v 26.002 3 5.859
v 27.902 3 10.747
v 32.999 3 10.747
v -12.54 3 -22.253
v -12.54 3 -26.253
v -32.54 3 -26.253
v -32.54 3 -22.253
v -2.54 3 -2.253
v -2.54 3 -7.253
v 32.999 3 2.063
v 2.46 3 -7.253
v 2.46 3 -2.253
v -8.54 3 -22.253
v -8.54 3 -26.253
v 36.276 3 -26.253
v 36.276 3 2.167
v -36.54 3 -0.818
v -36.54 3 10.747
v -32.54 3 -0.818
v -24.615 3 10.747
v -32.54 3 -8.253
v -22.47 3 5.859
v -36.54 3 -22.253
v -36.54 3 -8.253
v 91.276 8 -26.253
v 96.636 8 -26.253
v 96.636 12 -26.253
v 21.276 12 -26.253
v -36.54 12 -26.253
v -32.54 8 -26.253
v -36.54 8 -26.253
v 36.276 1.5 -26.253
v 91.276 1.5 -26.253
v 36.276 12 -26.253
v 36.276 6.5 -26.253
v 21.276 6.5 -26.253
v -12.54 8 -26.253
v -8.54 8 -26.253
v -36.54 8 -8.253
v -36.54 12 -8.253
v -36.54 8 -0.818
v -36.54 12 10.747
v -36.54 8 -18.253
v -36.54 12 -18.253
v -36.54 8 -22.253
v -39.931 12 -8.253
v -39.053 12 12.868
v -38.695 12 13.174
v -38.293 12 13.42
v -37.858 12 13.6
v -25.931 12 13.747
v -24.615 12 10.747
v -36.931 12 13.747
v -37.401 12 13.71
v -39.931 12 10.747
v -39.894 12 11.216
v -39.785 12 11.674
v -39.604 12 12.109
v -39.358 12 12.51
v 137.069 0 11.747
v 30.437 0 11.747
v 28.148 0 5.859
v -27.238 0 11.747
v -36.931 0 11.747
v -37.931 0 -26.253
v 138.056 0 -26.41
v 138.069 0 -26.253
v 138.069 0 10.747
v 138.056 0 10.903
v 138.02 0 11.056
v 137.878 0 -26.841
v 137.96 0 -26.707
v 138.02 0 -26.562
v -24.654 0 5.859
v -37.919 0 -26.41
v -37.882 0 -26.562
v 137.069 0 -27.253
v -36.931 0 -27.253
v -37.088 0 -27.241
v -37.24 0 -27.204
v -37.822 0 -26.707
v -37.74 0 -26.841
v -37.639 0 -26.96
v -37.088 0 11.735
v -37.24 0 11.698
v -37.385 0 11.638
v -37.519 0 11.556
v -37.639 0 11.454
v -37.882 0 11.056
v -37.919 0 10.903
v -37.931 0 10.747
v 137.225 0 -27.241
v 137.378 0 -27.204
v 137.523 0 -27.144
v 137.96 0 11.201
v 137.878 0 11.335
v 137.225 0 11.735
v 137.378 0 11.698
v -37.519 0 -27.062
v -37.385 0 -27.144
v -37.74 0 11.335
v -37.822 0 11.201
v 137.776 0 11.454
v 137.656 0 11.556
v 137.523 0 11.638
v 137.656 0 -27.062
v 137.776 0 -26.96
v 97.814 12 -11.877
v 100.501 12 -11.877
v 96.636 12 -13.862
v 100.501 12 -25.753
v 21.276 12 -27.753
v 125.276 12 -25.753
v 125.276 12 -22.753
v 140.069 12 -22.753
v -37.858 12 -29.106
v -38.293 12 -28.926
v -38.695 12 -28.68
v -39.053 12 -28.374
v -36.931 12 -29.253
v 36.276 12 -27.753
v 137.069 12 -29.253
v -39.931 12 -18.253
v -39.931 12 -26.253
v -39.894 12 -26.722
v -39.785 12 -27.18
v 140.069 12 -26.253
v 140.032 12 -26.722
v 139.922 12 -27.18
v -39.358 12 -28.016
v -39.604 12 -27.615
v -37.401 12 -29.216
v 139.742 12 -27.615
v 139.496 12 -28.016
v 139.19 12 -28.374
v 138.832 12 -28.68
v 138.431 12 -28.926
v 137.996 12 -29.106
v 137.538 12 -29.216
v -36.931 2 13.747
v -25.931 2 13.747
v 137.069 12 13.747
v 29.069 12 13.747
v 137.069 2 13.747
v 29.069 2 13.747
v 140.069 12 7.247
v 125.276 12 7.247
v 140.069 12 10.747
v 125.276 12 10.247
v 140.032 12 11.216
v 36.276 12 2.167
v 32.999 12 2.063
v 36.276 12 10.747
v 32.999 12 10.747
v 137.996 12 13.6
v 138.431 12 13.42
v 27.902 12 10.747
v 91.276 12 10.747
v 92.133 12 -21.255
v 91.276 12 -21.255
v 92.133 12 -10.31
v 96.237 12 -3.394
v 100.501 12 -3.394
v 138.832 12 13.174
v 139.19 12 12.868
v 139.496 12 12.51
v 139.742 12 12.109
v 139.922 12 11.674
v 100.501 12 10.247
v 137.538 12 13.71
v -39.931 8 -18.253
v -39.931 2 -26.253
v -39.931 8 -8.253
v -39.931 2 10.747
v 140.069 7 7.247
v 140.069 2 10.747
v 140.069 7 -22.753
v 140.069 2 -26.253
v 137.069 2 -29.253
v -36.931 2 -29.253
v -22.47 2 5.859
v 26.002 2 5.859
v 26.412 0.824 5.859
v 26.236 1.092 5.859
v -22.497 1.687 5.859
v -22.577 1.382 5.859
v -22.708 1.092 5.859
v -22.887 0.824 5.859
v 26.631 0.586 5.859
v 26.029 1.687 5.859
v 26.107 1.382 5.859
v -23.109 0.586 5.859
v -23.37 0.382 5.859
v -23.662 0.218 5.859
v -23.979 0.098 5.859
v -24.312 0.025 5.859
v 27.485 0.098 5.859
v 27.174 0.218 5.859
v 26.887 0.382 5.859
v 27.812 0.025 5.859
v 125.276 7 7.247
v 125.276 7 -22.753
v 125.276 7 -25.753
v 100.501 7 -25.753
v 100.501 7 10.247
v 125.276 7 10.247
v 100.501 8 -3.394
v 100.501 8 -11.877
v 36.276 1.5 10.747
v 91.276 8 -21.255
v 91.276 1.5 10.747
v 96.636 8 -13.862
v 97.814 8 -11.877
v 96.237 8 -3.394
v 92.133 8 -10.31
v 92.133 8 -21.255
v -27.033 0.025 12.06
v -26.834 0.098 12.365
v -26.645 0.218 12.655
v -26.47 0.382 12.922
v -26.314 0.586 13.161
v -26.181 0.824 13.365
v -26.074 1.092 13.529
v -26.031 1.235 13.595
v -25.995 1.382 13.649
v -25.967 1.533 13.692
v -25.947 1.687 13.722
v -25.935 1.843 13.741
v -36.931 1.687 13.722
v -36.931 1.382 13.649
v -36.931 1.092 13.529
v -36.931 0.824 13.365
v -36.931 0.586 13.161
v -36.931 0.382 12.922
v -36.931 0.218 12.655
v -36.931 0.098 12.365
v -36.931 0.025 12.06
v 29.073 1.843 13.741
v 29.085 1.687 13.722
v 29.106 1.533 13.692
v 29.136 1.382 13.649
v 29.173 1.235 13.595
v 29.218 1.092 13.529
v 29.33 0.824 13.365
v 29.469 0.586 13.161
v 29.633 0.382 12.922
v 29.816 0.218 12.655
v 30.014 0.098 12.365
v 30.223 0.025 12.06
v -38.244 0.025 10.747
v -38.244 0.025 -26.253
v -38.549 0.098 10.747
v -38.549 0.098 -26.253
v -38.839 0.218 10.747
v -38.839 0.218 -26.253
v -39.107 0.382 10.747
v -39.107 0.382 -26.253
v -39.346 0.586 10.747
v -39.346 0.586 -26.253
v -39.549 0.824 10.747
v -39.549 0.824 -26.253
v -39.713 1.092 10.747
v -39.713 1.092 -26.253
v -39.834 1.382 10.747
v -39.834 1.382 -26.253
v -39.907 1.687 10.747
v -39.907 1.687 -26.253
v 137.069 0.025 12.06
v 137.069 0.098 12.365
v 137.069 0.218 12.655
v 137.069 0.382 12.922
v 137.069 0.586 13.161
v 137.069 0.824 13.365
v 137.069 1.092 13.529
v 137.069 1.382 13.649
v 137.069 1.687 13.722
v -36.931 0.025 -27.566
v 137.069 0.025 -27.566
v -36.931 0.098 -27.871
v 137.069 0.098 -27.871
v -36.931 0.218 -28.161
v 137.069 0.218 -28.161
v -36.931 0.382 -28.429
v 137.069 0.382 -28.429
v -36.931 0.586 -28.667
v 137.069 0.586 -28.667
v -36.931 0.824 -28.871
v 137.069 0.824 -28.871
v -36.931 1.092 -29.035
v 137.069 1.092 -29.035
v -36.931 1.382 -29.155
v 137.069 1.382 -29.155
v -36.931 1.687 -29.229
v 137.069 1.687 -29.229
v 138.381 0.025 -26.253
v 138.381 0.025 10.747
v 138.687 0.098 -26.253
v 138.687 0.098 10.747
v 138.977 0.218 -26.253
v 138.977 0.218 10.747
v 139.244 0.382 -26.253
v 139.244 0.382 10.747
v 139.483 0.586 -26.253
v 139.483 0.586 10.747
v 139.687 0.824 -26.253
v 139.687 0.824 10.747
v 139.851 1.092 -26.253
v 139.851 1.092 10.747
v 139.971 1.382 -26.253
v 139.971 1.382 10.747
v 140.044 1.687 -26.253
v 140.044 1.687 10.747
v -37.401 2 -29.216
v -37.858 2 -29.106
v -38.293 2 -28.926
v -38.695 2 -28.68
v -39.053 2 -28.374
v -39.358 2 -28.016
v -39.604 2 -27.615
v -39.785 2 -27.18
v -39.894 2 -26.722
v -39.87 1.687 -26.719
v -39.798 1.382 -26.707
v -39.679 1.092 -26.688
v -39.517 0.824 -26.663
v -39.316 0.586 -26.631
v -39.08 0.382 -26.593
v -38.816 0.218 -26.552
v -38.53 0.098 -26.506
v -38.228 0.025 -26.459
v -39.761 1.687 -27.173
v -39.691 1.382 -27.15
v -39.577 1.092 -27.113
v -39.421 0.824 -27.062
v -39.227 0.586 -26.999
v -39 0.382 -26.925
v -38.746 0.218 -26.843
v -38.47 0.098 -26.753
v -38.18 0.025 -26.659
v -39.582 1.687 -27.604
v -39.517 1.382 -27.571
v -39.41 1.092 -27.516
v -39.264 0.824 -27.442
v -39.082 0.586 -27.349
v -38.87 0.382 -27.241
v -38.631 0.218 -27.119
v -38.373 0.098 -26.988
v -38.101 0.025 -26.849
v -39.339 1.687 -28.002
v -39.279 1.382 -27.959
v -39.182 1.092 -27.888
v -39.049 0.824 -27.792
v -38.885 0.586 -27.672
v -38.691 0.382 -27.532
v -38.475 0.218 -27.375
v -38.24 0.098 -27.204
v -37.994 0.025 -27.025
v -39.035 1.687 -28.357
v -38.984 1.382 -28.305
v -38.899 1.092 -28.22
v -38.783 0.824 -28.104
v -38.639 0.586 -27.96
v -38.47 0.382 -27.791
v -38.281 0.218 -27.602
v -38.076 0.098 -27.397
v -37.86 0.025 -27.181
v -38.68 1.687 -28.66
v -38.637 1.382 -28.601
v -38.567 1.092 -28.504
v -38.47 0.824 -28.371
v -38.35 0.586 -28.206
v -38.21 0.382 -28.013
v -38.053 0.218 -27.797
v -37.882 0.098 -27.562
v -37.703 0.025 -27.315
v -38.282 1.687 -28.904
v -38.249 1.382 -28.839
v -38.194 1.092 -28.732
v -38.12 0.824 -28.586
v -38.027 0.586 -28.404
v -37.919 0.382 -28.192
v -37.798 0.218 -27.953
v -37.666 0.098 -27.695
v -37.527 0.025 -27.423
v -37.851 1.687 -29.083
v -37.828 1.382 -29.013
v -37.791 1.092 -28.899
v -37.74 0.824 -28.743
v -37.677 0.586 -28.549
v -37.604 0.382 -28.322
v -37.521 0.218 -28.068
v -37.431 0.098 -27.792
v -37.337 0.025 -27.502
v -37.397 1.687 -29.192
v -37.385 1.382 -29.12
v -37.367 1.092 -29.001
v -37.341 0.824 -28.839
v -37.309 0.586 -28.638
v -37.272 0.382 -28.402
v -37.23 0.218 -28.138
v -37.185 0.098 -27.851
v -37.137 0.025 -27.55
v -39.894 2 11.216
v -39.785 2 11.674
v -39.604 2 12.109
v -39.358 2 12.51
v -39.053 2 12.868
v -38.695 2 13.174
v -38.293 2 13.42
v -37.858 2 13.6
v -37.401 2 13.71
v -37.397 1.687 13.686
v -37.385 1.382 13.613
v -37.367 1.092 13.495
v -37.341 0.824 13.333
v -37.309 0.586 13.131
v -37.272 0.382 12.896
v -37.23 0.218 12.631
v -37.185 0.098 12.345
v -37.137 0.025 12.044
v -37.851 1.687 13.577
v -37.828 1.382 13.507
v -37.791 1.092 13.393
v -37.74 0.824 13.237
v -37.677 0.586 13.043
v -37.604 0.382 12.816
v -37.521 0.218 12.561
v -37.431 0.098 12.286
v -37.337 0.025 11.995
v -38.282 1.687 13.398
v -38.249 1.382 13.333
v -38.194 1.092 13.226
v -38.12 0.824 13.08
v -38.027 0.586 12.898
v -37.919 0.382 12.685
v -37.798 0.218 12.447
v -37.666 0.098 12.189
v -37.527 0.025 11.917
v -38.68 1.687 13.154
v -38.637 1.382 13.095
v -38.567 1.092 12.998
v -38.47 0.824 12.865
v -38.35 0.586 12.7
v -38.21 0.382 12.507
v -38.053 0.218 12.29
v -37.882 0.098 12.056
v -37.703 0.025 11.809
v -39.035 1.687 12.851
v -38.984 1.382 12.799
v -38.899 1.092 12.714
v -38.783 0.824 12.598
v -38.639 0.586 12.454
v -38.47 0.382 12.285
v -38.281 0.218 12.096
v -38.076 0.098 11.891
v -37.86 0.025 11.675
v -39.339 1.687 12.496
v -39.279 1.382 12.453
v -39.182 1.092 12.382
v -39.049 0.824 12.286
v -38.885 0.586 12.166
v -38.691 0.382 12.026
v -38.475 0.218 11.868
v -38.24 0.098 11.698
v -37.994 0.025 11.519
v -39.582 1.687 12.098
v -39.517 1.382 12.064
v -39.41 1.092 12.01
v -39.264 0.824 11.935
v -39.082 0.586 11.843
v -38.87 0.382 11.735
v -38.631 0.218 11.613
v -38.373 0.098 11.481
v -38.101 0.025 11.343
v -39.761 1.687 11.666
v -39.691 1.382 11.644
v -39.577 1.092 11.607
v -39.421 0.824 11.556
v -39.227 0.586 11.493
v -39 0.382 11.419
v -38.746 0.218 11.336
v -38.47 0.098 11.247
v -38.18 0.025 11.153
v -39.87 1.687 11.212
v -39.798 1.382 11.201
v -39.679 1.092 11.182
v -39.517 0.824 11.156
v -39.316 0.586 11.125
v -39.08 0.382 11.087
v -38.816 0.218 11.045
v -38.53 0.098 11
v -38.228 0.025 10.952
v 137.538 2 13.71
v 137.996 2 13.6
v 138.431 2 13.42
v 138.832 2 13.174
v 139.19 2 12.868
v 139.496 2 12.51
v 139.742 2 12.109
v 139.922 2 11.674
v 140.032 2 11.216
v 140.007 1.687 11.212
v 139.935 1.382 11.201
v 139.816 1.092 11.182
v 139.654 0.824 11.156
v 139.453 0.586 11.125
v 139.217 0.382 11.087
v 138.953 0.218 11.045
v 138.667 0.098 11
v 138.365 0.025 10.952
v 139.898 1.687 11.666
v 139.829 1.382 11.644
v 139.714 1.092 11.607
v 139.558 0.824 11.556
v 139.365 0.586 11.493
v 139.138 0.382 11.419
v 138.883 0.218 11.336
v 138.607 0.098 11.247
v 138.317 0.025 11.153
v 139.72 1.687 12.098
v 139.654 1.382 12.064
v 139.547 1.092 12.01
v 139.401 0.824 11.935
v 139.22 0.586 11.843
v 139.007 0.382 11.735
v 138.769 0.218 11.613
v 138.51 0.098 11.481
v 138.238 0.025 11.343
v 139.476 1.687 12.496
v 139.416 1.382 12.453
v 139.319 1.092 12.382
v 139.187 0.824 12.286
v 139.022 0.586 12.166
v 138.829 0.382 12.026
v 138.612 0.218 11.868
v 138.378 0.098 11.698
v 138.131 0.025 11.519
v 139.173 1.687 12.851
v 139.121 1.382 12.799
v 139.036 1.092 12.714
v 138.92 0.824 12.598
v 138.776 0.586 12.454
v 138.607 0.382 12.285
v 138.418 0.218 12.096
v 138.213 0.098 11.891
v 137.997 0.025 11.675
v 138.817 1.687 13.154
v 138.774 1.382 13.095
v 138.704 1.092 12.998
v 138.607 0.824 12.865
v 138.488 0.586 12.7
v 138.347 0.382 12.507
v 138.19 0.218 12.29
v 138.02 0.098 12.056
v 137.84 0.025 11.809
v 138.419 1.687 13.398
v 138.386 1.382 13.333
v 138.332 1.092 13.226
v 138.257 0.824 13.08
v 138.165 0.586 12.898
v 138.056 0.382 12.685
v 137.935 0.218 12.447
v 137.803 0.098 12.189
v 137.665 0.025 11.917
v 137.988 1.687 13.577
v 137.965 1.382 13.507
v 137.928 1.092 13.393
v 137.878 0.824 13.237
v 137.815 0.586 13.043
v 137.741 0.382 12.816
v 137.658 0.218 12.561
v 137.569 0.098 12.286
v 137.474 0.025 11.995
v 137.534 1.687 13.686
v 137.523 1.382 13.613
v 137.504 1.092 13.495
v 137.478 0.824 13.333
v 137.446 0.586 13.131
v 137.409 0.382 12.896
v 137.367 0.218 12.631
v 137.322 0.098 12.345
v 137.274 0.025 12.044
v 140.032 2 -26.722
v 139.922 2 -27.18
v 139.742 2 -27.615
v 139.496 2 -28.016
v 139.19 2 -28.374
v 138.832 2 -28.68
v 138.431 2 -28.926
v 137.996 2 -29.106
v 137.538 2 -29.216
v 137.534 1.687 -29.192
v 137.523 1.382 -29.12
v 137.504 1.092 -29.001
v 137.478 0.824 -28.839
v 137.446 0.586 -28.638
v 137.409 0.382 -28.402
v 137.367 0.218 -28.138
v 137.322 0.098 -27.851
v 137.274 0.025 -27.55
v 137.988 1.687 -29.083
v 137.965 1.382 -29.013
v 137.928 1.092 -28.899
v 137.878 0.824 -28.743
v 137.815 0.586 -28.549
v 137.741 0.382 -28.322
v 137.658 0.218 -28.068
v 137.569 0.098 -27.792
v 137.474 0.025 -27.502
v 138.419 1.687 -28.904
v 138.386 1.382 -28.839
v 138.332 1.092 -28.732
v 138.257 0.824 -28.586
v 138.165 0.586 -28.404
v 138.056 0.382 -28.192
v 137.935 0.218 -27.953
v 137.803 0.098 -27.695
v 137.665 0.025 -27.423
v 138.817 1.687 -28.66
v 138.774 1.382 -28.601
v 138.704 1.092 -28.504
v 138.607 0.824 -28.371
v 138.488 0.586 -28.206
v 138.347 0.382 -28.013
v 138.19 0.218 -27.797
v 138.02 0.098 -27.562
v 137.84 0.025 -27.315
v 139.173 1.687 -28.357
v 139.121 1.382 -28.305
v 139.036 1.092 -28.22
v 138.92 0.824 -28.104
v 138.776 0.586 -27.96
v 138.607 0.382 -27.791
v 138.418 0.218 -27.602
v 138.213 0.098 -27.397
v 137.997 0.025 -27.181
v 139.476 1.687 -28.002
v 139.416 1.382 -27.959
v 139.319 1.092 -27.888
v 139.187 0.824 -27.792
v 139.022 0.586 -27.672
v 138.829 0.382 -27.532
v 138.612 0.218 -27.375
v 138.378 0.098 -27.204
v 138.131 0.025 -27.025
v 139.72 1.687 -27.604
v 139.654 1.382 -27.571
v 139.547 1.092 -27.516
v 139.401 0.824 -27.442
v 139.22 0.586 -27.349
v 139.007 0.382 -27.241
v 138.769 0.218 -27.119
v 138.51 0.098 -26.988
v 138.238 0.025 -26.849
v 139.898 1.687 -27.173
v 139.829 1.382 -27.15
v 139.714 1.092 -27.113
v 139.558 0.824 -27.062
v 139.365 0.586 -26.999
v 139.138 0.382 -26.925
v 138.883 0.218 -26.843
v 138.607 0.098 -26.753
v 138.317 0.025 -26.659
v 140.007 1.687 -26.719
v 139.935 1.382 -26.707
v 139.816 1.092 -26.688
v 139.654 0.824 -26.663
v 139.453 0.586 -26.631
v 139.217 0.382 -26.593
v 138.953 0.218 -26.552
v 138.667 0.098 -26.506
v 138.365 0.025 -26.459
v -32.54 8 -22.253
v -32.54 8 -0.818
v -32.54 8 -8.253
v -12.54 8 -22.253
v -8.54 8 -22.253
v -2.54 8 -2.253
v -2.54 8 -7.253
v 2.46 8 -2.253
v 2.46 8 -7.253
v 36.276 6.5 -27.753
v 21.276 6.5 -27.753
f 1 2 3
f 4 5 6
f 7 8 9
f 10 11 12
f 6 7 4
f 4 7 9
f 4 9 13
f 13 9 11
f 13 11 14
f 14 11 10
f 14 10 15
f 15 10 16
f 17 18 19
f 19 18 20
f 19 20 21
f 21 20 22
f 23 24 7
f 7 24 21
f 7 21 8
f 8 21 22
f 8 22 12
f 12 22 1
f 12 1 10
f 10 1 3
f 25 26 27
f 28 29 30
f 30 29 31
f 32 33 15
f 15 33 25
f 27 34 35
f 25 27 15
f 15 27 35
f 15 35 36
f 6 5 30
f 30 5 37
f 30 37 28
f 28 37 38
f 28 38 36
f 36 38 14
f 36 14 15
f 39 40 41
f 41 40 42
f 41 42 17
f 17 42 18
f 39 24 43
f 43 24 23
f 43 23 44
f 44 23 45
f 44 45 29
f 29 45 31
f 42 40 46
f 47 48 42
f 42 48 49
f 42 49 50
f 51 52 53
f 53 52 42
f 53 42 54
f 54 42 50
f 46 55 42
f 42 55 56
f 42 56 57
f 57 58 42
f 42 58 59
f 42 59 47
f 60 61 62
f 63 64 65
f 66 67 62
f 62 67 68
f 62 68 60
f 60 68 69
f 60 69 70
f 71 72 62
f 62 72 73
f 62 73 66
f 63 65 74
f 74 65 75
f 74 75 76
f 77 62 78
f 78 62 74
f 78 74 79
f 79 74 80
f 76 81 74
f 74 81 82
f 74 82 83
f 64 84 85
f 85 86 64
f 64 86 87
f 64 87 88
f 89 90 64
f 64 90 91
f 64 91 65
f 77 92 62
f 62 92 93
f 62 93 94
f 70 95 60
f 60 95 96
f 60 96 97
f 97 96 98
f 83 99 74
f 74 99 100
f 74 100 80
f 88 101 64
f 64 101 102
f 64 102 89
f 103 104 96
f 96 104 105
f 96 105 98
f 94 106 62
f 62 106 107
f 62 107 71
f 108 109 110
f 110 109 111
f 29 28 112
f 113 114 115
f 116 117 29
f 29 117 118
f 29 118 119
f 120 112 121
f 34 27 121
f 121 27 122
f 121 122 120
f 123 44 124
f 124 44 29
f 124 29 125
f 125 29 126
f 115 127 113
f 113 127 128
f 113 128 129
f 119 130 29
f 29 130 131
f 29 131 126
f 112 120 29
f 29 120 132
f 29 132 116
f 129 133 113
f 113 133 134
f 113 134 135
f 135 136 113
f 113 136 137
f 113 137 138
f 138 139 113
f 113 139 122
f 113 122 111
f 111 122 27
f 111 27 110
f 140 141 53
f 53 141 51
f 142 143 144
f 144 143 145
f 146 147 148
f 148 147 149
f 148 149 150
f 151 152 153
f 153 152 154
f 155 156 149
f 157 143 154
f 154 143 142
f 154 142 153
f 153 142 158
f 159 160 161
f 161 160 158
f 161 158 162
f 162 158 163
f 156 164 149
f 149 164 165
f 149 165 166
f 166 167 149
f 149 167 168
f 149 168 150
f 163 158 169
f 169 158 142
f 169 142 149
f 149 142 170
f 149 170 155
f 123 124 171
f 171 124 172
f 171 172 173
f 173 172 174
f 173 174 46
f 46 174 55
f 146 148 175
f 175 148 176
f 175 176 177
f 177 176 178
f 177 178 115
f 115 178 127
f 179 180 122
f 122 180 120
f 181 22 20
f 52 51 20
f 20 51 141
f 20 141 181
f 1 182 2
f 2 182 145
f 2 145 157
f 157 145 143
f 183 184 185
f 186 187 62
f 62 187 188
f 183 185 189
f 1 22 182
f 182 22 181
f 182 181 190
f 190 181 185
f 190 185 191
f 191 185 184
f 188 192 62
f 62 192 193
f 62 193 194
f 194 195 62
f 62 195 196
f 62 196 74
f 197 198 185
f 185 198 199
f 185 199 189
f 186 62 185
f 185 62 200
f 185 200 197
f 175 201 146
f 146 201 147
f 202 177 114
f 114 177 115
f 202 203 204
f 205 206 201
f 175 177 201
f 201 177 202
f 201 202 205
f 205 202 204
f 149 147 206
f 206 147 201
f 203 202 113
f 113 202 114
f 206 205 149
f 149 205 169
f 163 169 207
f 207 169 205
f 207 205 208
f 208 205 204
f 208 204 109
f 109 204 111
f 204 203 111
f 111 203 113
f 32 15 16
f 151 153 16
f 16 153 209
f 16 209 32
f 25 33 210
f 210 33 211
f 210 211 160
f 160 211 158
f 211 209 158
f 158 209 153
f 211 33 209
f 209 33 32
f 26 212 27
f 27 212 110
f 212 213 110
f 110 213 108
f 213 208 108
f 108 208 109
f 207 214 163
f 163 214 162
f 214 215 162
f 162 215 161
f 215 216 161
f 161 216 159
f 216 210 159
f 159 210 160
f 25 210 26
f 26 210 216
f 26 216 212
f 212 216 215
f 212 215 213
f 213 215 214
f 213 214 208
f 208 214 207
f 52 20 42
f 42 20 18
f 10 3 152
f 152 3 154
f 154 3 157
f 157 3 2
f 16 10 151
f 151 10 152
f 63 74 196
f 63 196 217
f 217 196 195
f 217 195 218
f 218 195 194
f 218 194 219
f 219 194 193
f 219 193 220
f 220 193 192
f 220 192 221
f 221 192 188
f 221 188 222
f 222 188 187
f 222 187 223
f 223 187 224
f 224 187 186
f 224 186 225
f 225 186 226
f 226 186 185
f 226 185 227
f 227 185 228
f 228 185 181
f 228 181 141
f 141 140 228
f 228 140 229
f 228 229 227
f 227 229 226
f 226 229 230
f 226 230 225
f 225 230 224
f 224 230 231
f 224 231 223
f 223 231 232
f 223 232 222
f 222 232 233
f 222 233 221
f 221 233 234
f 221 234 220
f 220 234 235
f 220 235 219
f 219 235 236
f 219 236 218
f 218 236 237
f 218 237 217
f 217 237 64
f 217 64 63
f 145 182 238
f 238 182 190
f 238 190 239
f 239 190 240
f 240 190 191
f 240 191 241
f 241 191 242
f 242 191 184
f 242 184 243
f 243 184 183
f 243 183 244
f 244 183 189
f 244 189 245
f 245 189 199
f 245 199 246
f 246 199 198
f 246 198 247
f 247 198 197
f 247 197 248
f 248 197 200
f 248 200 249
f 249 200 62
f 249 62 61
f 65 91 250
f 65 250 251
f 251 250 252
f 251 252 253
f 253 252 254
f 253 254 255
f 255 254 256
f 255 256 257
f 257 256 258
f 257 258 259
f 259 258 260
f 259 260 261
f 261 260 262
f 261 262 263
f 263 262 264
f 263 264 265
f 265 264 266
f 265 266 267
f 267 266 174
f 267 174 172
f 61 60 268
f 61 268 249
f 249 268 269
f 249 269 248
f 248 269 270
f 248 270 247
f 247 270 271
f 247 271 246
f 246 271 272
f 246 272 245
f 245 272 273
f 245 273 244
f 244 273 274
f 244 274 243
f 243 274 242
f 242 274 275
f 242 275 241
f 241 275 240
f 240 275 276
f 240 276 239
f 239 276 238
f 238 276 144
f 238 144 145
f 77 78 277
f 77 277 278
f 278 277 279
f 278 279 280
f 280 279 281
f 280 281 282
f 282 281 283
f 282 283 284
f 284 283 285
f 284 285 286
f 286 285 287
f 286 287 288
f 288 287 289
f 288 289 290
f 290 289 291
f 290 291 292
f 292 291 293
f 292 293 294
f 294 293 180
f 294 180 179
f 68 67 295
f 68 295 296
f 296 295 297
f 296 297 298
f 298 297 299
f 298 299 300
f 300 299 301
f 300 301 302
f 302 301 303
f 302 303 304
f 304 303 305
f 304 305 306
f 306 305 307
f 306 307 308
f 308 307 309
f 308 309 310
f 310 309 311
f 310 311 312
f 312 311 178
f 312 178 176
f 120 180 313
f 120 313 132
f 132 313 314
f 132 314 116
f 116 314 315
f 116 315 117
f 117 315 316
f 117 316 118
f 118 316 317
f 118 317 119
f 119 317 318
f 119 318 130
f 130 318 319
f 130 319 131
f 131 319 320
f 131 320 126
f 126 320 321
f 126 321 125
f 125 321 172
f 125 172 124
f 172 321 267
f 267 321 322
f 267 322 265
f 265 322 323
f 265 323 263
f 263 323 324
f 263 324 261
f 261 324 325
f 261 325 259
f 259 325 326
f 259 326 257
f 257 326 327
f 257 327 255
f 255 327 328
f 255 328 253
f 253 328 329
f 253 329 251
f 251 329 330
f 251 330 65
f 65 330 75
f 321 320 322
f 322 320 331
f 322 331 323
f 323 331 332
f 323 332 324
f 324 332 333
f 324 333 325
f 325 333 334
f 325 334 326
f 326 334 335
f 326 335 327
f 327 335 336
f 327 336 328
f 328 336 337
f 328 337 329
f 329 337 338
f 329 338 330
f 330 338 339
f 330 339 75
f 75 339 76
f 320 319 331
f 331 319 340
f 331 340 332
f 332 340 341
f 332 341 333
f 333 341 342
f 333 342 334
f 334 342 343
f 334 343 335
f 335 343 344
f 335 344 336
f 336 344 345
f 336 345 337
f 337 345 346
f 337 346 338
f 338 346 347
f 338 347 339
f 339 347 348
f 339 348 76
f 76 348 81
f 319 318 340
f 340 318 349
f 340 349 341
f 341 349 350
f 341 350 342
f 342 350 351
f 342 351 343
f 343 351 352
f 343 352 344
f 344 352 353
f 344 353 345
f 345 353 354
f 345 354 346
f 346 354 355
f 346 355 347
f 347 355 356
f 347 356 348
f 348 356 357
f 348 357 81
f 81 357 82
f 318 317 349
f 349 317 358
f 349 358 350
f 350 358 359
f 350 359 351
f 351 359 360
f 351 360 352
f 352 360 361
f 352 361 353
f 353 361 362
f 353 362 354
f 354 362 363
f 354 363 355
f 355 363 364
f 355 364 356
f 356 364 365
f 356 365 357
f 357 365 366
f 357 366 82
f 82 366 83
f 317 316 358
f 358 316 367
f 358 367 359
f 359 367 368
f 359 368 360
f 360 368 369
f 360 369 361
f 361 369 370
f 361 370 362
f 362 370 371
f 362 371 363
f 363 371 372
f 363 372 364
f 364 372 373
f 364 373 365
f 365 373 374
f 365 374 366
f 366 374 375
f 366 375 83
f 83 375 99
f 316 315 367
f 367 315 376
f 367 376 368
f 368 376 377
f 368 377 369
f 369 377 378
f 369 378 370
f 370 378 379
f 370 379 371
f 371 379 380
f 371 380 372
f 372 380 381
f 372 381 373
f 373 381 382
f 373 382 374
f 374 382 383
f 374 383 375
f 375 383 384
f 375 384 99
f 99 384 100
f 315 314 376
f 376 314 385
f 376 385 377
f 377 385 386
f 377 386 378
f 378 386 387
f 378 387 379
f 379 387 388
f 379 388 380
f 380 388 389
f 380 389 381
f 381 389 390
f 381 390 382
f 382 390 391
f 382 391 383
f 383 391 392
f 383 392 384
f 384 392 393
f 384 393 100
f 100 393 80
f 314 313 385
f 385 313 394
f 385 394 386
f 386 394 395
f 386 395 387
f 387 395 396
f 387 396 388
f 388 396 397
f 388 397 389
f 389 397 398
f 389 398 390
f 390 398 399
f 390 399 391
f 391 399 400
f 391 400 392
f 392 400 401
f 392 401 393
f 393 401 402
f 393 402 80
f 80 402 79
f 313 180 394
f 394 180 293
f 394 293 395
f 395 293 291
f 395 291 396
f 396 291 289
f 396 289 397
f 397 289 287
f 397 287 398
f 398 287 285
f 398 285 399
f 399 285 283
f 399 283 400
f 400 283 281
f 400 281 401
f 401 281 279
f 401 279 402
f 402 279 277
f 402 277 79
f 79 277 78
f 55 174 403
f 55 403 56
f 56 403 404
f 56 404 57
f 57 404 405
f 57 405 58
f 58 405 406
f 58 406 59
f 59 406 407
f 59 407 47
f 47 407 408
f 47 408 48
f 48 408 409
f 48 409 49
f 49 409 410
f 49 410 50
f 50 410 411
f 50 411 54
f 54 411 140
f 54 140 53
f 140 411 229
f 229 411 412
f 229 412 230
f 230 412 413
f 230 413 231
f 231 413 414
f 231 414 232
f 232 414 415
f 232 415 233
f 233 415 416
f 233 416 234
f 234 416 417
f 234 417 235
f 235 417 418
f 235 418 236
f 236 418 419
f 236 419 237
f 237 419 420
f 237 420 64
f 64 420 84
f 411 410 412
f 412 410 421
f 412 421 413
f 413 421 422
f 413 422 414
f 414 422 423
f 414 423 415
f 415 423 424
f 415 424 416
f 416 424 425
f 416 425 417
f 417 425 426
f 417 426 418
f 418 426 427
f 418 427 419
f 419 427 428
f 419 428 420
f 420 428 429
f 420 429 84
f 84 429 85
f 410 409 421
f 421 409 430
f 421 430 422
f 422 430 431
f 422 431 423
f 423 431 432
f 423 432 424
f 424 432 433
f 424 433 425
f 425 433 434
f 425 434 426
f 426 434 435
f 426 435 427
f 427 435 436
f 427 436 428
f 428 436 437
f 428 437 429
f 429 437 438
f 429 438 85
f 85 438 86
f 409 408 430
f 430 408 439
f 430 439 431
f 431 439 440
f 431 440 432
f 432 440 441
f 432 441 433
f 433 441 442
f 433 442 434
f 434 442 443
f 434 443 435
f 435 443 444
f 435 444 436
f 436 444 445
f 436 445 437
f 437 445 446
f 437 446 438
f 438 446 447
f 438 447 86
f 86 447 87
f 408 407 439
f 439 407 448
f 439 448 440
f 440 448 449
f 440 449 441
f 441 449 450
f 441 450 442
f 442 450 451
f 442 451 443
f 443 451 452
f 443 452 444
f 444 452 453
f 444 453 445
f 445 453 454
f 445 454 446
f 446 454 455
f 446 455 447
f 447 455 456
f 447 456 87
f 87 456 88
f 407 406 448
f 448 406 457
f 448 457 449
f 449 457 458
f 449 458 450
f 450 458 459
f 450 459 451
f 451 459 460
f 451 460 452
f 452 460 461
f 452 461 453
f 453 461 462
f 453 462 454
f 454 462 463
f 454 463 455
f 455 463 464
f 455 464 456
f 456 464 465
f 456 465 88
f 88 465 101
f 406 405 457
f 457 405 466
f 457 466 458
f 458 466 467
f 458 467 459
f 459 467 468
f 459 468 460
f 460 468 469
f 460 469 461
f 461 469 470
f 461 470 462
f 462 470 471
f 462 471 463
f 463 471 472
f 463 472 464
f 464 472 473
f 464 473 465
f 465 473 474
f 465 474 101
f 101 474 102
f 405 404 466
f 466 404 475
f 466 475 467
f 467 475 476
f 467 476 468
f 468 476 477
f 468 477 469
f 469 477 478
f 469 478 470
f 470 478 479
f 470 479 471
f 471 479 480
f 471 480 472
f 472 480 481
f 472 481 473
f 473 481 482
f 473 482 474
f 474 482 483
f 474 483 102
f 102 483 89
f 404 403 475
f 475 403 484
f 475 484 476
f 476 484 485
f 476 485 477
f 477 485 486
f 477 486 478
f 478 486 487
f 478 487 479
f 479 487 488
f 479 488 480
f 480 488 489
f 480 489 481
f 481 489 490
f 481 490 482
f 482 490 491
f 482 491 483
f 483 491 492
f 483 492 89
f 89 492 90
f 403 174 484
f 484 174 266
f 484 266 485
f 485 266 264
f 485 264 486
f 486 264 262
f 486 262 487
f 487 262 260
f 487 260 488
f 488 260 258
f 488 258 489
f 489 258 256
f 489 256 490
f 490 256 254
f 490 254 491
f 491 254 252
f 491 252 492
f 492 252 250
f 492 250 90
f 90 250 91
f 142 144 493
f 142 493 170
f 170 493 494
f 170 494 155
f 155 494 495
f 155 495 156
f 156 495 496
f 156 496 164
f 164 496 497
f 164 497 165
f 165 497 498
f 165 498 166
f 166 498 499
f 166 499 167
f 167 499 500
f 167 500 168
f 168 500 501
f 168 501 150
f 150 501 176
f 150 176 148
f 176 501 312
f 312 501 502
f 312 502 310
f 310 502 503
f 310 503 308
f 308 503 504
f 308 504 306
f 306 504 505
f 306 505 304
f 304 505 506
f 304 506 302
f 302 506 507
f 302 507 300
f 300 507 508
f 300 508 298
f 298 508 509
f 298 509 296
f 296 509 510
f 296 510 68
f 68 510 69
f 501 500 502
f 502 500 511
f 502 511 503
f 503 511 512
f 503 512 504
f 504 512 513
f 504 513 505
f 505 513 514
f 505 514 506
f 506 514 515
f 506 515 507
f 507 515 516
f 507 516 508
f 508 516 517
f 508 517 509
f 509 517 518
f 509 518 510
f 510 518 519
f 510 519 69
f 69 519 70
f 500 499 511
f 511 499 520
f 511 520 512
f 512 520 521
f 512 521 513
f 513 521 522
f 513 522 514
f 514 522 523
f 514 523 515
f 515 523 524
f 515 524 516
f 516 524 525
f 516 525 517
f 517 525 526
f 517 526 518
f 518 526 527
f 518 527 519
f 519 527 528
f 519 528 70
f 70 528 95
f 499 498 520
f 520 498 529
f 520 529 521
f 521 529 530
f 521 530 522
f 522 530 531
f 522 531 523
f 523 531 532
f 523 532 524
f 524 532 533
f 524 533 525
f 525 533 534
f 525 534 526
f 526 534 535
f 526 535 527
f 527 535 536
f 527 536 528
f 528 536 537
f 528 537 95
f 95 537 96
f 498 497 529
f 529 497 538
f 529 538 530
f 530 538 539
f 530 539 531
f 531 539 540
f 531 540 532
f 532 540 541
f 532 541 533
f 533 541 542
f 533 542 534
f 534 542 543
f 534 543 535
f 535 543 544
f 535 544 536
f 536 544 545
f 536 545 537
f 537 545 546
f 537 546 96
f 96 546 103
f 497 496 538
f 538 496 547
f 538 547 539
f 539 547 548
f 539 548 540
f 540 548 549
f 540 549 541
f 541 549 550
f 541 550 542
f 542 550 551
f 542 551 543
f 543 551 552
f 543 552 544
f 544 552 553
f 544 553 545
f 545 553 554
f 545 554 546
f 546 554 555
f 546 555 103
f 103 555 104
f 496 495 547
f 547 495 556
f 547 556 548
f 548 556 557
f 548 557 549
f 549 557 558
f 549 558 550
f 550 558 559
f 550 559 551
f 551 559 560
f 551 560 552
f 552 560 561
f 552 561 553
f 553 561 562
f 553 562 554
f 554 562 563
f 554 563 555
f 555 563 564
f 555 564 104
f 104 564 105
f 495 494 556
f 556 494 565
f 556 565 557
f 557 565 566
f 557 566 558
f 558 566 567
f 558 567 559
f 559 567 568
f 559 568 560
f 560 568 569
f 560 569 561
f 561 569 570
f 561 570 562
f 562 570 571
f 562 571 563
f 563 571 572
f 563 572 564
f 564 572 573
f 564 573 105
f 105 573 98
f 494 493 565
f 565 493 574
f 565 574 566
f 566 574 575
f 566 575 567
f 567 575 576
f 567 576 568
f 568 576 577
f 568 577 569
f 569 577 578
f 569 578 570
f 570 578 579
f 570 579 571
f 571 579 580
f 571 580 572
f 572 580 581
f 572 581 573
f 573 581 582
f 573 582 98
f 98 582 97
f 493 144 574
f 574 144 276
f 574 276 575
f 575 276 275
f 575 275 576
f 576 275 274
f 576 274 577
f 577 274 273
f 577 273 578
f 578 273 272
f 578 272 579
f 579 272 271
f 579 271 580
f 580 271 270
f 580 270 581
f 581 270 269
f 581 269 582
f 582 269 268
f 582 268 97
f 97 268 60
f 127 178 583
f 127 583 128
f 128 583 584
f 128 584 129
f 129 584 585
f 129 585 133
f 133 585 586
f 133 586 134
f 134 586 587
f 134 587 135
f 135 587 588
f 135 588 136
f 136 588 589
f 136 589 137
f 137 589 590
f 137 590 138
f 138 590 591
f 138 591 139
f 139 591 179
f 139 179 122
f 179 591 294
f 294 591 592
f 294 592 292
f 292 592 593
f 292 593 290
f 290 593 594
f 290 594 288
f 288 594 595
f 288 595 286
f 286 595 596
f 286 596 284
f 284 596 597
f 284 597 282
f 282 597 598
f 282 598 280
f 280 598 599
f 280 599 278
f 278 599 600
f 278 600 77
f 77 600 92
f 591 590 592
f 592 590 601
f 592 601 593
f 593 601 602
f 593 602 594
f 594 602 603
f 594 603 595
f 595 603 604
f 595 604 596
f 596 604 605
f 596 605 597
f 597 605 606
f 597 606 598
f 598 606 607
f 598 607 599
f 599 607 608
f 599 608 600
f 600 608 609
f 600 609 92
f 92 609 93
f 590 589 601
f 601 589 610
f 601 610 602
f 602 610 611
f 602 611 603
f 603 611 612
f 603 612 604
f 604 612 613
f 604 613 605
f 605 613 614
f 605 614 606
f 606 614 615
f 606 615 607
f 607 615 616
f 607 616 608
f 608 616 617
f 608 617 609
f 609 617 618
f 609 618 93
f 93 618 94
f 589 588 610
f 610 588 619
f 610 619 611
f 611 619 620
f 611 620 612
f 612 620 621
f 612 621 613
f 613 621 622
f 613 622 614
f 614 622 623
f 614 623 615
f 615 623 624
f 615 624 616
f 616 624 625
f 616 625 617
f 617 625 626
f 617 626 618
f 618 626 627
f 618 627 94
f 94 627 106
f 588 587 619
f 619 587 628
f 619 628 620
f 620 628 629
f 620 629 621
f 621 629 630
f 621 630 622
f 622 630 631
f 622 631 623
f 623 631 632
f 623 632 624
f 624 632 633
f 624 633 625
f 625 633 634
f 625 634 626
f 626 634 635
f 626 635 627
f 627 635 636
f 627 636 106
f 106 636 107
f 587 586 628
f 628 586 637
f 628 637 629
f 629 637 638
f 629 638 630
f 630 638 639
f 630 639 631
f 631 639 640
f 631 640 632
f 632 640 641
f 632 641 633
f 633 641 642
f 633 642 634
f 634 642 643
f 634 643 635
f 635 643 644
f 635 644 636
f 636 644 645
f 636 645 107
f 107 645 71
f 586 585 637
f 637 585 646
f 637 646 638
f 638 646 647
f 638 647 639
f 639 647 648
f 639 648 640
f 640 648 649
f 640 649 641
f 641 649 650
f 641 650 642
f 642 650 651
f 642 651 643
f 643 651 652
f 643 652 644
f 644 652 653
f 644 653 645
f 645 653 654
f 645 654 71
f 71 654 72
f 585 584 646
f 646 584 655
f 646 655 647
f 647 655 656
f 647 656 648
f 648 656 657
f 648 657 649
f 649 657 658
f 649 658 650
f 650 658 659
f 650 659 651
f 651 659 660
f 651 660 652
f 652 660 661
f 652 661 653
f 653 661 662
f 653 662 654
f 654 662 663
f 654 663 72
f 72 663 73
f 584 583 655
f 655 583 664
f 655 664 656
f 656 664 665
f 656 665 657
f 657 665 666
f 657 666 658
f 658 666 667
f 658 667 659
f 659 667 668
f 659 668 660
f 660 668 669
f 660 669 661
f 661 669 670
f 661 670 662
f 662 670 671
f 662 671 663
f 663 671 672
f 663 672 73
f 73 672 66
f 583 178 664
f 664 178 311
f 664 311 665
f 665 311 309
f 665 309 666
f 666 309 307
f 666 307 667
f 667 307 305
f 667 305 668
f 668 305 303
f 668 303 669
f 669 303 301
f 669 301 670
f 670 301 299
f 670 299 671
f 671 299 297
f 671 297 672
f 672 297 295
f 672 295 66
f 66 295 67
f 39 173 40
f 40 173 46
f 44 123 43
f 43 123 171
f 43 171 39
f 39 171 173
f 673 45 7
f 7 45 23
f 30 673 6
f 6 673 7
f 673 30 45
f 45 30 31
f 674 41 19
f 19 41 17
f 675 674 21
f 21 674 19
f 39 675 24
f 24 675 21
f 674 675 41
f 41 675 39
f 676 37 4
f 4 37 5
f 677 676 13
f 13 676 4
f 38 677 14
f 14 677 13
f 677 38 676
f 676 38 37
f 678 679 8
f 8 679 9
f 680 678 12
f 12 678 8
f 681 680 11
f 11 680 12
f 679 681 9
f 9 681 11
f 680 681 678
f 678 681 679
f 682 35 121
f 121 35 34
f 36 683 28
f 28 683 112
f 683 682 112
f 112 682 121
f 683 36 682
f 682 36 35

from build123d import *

# Parameters (mm, degrees)
SKETCH_3_W           = 180
SKETCH_3_H           = 43
EXTRUDE_1_DEPTH      = 12
CUT_EXTRUDE_1_DEPTH  = 52
CUT_EXTRUDE_2_DEPTH  = 5
CUT_EXTRUDE_3_DEPTH  = 5
SKETCH_8_W           = 55
SKETCH_8_H           = 37
CUT_EXTRUDE_4_DEPTH  = 10.5
CUT_EXTRUDE_5_DEPTH  = 4
SKETCH_10_W          = 62.128790526
SKETCH_10_H          = 8.683746703
CUT_EXTRUDE_6_DEPTH  = 8
CUT_EXTRUDE_8_DEPTH  = 9
FILLET_2_R           = 2
FILLET_3_R           = 3
SKETCH_12_W          = 10
SKETCH_12_H          = 4
CUT_EXTRUDE_9_DEPTH  = 10
SKETCH_13_W          = 4
SKETCH_13_H          = 4
SKETCH_13_H_2        = 7.435323836
SKETCH_13_W_2        = 5
SKETCH_13_H_3        = 5
EXTRUDE_2_DEPTH      = 5
SKETCH_14_W          = 15
SKETCH_14_H          = 1.5
CUT_EXTRUDE_10_DEPTH = 5.5


with BuildPart() as part:
    # 草图3 → 凸台-拉伸1 (new body)
    with BuildSketch(Plane(origin=(0, 0, 0), x_dir=(1, 0, 0), z_dir=(0, 1, 0))):
        with Locations((50.068597249, 7.753123643)):
            Rectangle(SKETCH_3_W, SKETCH_3_H)
    extrude(amount=EXTRUDE_1_DEPTH)

    # 草图4 → 切除-拉伸1 (cut)
    with BuildSketch(Plane(origin=(0, 0, 0), x_dir=(1, 0, 0), z_dir=(0, 1, 0))):
        Polygon((-22.469613434, -5.858946979), (26.002261286, -5.858946979), (29.068597249, -13.746876357), (-25.931402751, -13.746876357), align=None)
    extrude(amount=CUT_EXTRUDE_1_DEPTH, mode=Mode.SUBTRACT)

    # 草图5 → 切除-拉伸2 (cut)
    with BuildSketch(Plane(origin=(0, 12, 0), x_dir=(1, 0, 0), z_dir=(0, 1, 0))):
        Polygon((140.068597249, 7.753123643), (140.068597249, 22.753123643), (125.276479966, 22.753123643), (125.276479966, -7.246876357), (140.068597249, -7.246876357), align=None)
    extrude(amount=-CUT_EXTRUDE_2_DEPTH, mode=Mode.SUBTRACT)

    # 草图7 → 切除-拉伸3 (cut)
    with BuildSketch(Plane(origin=(0, 12, 0), x_dir=(1, 0, 0), z_dir=(0, 1, 0))):
        Polygon((125.276479966, 7.753123643), (125.276479966, 25.753123643), (100.500825538, 25.753123643), (100.500825538, -10.246876357), (125.276479966, -10.246876357), align=None)
    extrude(amount=-CUT_EXTRUDE_3_DEPTH, mode=Mode.SUBTRACT)

    # 草图8 → 切除-拉伸4 (cut)
    with BuildSketch(Plane(origin=(0, 12, 0), x_dir=(1, 0, 0), z_dir=(0, 1, 0))):
        with Locations((63.776287419, 7.753123643)):
            Rectangle(SKETCH_8_W, SKETCH_8_H)
    extrude(amount=-CUT_EXTRUDE_4_DEPTH, mode=Mode.SUBTRACT)

    # 草图9 → 切除-拉伸5 (cut)
    with BuildSketch(Plane(origin=(0, 12, 0), x_dir=(1, 0, 0), z_dir=(0, 1, 0))):
        Polygon((91.276287419, 26.253123643), (96.635770173, 26.253123643), (96.635770173, 22.130591531), (96.635770173, 13.862098754), (97.813575381, 11.877191358), (100.500825538, 11.877191358), (100.500825538, 3.393971617), (96.236747254, 3.393971617), (92.132656028, 10.310430274), (92.132656028, 21.255120764), (91.276287419, 21.255120764), align=None)
    extrude(amount=-CUT_EXTRUDE_5_DEPTH, mode=Mode.SUBTRACT)

    # 草图10 → 切除-拉伸6 (cut)
    with BuildSketch(Plane(origin=(0, 12, 0), x_dir=(1, 0, 0), z_dir=(0, 1, 0))):
        with Locations((1.934159822, -6.405003006)):
            Rectangle(SKETCH_10_W, SKETCH_10_H)
    extrude(amount=-CUT_EXTRUDE_6_DEPTH, mode=Mode.SUBTRACT)

    # 草图11 → 切除-拉伸8 (cut)
    with BuildSketch(Plane(origin=(0, 12, 0), x_dir=(1, 0, 0), z_dir=(0, 1, 0))):
        Polygon((32.998555085, -10.746876357), (-36.5396752, -10.746876357), (-36.5396752, 26.253123643), (36.276287419, 26.253123643), (36.276287419, -2.167243749), (32.998555085, -2.063129654), align=None)
    extrude(amount=-CUT_EXTRUDE_8_DEPTH, mode=Mode.SUBTRACT)

    # 圆角2
    fillet_2_edges = [part.edges().sort_by_distance(p)[0] for p in [
        (84.568597249, 0, 13.746876357),
        (-24.200508092, 0, 9.802911668),
        (27.535429268, 0, 9.802911668),
        (50.068597249, 0, -29.253123643),
        (140.068597249, 0, -7.753123643),
        (-32.931402751, 0, 13.746876357),
        (-39.931402751, 0, -7.753123643),
    ]]
    fillet(fillet_2_edges, radius=FILLET_2_R)

    # 圆角3
    # the kernel refuses this fillet: 3 mm, written as the material it takes off along each edge
    with BuildSketch(Plane(origin=(-36.931402751, 0, 10.746876357), x_dir=(0, 0, 1), z_dir=(1, 0, 0))) as fillet_3_piece_1:
        with BuildLine():
            CenterArc((1, -2), 2, 0, 90)
            Line((3, -2), (3, 0))
            Line((3, 0), (1, 0))
        make_face()
    revolve(axis=Axis((-36.931402751, 0, 10.746876357), (0, -1, 0)), revolution_arc=90, mode=Mode.SUBTRACT)
    with BuildSketch(Plane(origin=(-36.931402751, 0, -26.253123643), x_dir=(-1, 0, 0), z_dir=(0, 0, 1))) as fillet_3_piece_2:
        with BuildLine():
            CenterArc((1, -2), 2, 0, 90)
            Line((3, -2), (3, 0))
            Line((3, 0), (1, 0))
        make_face()
    revolve(axis=Axis((-36.931402751, 0, -26.253123643), (0, -1, 0)), revolution_arc=90, mode=Mode.SUBTRACT)
    with BuildSketch(Plane(origin=(137.068597249, 0, 10.746876357), x_dir=(1, 0, 0), z_dir=(0, 0, -1))) as fillet_3_piece_3:
        with BuildLine():
            CenterArc((1, -2), 2, 0, 90)
            Line((3, -2), (3, 0))
            Line((3, 0), (1, 0))
        make_face()
    revolve(axis=Axis((137.068597249, 0, 10.746876357), (0, -1, 0)), revolution_arc=90, mode=Mode.SUBTRACT)
    with BuildSketch(Plane(origin=(137.068597249, 0, -26.253123643), x_dir=(0, 0, -1), z_dir=(-1, 0, 0))) as fillet_3_piece_4:
        with BuildLine():
            CenterArc((1, -2), 2, 0, 90)
            Line((3, -2), (3, 0))
            Line((3, 0), (1, 0))
        make_face()
    revolve(axis=Axis((137.068597249, 0, -26.253123643), (0, -1, 0)), revolution_arc=90, mode=Mode.SUBTRACT)
    with BuildSketch(Plane(origin=(-39.931402751, 0, -29.253123643), x_dir=(1, 0, 0), z_dir=(0, 1, 0))) as fillet_3_piece_5:
        with BuildLine():
            CenterArc((FILLET_3_R, -FILLET_3_R), FILLET_3_R, 90, 90)
            Line((0, -FILLET_3_R), (0, 0))
            Line((0, 0), (FILLET_3_R, 0))
        make_face()
    extrude(amount=19.5, mode=Mode.SUBTRACT)
    with BuildSketch(Plane(origin=(140.068597249, 0, -29.253123643), x_dir=(-1, 0, 0), z_dir=(0, 1, 0)), Plane(origin=(140.068597249, 0, 13.746876357), x_dir=(0, 0, -1), z_dir=(0, 1, 0)), Plane(origin=(-39.931402751, 0, 13.746876357), x_dir=(1, 0, 0), z_dir=(0, 1, 0))) as fillet_3_piece_6:
        with BuildLine():
            CenterArc((FILLET_3_R, FILLET_3_R), FILLET_3_R, 180, 90)
            Line((0, FILLET_3_R), (0, 0))
            Line((0, 0), (FILLET_3_R, 0))
        make_face()
    extrude(amount=19.5, mode=Mode.SUBTRACT)

    # 草图12 → 切除-拉伸9 (cut)
    with BuildSketch(Plane(origin=(-36.5396752, 0, 0), x_dir=(0, 0, -1), z_dir=(1, 0, 0))):
        with Locations((13.253123643, 10)):
            Rectangle(SKETCH_12_W, SKETCH_12_H)
    extrude(amount=-CUT_EXTRUDE_9_DEPTH, mode=Mode.SUBTRACT)

    # 草图13 → 凸台-拉伸2 (add)
    with BuildSketch(Plane(origin=(0, 3, 0), x_dir=(1, 0, 0), z_dir=(0, 1, 0))):
        with Locations((-34.5396752, 24.253123643)):
            Rectangle(SKETCH_13_W, SKETCH_13_H)
        with Locations((-34.5396752, 4.535461725)):
            Rectangle(SKETCH_13_W, SKETCH_13_H_2)
        with Locations((-10.5396752, 24.253123643)):
            Rectangle(SKETCH_13_W, SKETCH_13_H)
        with Locations((-0.0396752, 4.753123643)):
            Rectangle(SKETCH_13_W_2, SKETCH_13_H_3)
    extrude(amount=EXTRUDE_2_DEPTH)

    # 草图14 → 切除-拉伸10 (cut)
    with BuildSketch(Plane(origin=(0, 12, 0), x_dir=(1, 0, 0), z_dir=(0, 1, 0))):
        with Locations((28.776287419, 27.003123643)):
            Rectangle(SKETCH_14_W, SKETCH_14_H)
    extrude(amount=-CUT_EXTRUDE_10_DEPTH, mode=Mode.SUBTRACT)


solid = part.part
